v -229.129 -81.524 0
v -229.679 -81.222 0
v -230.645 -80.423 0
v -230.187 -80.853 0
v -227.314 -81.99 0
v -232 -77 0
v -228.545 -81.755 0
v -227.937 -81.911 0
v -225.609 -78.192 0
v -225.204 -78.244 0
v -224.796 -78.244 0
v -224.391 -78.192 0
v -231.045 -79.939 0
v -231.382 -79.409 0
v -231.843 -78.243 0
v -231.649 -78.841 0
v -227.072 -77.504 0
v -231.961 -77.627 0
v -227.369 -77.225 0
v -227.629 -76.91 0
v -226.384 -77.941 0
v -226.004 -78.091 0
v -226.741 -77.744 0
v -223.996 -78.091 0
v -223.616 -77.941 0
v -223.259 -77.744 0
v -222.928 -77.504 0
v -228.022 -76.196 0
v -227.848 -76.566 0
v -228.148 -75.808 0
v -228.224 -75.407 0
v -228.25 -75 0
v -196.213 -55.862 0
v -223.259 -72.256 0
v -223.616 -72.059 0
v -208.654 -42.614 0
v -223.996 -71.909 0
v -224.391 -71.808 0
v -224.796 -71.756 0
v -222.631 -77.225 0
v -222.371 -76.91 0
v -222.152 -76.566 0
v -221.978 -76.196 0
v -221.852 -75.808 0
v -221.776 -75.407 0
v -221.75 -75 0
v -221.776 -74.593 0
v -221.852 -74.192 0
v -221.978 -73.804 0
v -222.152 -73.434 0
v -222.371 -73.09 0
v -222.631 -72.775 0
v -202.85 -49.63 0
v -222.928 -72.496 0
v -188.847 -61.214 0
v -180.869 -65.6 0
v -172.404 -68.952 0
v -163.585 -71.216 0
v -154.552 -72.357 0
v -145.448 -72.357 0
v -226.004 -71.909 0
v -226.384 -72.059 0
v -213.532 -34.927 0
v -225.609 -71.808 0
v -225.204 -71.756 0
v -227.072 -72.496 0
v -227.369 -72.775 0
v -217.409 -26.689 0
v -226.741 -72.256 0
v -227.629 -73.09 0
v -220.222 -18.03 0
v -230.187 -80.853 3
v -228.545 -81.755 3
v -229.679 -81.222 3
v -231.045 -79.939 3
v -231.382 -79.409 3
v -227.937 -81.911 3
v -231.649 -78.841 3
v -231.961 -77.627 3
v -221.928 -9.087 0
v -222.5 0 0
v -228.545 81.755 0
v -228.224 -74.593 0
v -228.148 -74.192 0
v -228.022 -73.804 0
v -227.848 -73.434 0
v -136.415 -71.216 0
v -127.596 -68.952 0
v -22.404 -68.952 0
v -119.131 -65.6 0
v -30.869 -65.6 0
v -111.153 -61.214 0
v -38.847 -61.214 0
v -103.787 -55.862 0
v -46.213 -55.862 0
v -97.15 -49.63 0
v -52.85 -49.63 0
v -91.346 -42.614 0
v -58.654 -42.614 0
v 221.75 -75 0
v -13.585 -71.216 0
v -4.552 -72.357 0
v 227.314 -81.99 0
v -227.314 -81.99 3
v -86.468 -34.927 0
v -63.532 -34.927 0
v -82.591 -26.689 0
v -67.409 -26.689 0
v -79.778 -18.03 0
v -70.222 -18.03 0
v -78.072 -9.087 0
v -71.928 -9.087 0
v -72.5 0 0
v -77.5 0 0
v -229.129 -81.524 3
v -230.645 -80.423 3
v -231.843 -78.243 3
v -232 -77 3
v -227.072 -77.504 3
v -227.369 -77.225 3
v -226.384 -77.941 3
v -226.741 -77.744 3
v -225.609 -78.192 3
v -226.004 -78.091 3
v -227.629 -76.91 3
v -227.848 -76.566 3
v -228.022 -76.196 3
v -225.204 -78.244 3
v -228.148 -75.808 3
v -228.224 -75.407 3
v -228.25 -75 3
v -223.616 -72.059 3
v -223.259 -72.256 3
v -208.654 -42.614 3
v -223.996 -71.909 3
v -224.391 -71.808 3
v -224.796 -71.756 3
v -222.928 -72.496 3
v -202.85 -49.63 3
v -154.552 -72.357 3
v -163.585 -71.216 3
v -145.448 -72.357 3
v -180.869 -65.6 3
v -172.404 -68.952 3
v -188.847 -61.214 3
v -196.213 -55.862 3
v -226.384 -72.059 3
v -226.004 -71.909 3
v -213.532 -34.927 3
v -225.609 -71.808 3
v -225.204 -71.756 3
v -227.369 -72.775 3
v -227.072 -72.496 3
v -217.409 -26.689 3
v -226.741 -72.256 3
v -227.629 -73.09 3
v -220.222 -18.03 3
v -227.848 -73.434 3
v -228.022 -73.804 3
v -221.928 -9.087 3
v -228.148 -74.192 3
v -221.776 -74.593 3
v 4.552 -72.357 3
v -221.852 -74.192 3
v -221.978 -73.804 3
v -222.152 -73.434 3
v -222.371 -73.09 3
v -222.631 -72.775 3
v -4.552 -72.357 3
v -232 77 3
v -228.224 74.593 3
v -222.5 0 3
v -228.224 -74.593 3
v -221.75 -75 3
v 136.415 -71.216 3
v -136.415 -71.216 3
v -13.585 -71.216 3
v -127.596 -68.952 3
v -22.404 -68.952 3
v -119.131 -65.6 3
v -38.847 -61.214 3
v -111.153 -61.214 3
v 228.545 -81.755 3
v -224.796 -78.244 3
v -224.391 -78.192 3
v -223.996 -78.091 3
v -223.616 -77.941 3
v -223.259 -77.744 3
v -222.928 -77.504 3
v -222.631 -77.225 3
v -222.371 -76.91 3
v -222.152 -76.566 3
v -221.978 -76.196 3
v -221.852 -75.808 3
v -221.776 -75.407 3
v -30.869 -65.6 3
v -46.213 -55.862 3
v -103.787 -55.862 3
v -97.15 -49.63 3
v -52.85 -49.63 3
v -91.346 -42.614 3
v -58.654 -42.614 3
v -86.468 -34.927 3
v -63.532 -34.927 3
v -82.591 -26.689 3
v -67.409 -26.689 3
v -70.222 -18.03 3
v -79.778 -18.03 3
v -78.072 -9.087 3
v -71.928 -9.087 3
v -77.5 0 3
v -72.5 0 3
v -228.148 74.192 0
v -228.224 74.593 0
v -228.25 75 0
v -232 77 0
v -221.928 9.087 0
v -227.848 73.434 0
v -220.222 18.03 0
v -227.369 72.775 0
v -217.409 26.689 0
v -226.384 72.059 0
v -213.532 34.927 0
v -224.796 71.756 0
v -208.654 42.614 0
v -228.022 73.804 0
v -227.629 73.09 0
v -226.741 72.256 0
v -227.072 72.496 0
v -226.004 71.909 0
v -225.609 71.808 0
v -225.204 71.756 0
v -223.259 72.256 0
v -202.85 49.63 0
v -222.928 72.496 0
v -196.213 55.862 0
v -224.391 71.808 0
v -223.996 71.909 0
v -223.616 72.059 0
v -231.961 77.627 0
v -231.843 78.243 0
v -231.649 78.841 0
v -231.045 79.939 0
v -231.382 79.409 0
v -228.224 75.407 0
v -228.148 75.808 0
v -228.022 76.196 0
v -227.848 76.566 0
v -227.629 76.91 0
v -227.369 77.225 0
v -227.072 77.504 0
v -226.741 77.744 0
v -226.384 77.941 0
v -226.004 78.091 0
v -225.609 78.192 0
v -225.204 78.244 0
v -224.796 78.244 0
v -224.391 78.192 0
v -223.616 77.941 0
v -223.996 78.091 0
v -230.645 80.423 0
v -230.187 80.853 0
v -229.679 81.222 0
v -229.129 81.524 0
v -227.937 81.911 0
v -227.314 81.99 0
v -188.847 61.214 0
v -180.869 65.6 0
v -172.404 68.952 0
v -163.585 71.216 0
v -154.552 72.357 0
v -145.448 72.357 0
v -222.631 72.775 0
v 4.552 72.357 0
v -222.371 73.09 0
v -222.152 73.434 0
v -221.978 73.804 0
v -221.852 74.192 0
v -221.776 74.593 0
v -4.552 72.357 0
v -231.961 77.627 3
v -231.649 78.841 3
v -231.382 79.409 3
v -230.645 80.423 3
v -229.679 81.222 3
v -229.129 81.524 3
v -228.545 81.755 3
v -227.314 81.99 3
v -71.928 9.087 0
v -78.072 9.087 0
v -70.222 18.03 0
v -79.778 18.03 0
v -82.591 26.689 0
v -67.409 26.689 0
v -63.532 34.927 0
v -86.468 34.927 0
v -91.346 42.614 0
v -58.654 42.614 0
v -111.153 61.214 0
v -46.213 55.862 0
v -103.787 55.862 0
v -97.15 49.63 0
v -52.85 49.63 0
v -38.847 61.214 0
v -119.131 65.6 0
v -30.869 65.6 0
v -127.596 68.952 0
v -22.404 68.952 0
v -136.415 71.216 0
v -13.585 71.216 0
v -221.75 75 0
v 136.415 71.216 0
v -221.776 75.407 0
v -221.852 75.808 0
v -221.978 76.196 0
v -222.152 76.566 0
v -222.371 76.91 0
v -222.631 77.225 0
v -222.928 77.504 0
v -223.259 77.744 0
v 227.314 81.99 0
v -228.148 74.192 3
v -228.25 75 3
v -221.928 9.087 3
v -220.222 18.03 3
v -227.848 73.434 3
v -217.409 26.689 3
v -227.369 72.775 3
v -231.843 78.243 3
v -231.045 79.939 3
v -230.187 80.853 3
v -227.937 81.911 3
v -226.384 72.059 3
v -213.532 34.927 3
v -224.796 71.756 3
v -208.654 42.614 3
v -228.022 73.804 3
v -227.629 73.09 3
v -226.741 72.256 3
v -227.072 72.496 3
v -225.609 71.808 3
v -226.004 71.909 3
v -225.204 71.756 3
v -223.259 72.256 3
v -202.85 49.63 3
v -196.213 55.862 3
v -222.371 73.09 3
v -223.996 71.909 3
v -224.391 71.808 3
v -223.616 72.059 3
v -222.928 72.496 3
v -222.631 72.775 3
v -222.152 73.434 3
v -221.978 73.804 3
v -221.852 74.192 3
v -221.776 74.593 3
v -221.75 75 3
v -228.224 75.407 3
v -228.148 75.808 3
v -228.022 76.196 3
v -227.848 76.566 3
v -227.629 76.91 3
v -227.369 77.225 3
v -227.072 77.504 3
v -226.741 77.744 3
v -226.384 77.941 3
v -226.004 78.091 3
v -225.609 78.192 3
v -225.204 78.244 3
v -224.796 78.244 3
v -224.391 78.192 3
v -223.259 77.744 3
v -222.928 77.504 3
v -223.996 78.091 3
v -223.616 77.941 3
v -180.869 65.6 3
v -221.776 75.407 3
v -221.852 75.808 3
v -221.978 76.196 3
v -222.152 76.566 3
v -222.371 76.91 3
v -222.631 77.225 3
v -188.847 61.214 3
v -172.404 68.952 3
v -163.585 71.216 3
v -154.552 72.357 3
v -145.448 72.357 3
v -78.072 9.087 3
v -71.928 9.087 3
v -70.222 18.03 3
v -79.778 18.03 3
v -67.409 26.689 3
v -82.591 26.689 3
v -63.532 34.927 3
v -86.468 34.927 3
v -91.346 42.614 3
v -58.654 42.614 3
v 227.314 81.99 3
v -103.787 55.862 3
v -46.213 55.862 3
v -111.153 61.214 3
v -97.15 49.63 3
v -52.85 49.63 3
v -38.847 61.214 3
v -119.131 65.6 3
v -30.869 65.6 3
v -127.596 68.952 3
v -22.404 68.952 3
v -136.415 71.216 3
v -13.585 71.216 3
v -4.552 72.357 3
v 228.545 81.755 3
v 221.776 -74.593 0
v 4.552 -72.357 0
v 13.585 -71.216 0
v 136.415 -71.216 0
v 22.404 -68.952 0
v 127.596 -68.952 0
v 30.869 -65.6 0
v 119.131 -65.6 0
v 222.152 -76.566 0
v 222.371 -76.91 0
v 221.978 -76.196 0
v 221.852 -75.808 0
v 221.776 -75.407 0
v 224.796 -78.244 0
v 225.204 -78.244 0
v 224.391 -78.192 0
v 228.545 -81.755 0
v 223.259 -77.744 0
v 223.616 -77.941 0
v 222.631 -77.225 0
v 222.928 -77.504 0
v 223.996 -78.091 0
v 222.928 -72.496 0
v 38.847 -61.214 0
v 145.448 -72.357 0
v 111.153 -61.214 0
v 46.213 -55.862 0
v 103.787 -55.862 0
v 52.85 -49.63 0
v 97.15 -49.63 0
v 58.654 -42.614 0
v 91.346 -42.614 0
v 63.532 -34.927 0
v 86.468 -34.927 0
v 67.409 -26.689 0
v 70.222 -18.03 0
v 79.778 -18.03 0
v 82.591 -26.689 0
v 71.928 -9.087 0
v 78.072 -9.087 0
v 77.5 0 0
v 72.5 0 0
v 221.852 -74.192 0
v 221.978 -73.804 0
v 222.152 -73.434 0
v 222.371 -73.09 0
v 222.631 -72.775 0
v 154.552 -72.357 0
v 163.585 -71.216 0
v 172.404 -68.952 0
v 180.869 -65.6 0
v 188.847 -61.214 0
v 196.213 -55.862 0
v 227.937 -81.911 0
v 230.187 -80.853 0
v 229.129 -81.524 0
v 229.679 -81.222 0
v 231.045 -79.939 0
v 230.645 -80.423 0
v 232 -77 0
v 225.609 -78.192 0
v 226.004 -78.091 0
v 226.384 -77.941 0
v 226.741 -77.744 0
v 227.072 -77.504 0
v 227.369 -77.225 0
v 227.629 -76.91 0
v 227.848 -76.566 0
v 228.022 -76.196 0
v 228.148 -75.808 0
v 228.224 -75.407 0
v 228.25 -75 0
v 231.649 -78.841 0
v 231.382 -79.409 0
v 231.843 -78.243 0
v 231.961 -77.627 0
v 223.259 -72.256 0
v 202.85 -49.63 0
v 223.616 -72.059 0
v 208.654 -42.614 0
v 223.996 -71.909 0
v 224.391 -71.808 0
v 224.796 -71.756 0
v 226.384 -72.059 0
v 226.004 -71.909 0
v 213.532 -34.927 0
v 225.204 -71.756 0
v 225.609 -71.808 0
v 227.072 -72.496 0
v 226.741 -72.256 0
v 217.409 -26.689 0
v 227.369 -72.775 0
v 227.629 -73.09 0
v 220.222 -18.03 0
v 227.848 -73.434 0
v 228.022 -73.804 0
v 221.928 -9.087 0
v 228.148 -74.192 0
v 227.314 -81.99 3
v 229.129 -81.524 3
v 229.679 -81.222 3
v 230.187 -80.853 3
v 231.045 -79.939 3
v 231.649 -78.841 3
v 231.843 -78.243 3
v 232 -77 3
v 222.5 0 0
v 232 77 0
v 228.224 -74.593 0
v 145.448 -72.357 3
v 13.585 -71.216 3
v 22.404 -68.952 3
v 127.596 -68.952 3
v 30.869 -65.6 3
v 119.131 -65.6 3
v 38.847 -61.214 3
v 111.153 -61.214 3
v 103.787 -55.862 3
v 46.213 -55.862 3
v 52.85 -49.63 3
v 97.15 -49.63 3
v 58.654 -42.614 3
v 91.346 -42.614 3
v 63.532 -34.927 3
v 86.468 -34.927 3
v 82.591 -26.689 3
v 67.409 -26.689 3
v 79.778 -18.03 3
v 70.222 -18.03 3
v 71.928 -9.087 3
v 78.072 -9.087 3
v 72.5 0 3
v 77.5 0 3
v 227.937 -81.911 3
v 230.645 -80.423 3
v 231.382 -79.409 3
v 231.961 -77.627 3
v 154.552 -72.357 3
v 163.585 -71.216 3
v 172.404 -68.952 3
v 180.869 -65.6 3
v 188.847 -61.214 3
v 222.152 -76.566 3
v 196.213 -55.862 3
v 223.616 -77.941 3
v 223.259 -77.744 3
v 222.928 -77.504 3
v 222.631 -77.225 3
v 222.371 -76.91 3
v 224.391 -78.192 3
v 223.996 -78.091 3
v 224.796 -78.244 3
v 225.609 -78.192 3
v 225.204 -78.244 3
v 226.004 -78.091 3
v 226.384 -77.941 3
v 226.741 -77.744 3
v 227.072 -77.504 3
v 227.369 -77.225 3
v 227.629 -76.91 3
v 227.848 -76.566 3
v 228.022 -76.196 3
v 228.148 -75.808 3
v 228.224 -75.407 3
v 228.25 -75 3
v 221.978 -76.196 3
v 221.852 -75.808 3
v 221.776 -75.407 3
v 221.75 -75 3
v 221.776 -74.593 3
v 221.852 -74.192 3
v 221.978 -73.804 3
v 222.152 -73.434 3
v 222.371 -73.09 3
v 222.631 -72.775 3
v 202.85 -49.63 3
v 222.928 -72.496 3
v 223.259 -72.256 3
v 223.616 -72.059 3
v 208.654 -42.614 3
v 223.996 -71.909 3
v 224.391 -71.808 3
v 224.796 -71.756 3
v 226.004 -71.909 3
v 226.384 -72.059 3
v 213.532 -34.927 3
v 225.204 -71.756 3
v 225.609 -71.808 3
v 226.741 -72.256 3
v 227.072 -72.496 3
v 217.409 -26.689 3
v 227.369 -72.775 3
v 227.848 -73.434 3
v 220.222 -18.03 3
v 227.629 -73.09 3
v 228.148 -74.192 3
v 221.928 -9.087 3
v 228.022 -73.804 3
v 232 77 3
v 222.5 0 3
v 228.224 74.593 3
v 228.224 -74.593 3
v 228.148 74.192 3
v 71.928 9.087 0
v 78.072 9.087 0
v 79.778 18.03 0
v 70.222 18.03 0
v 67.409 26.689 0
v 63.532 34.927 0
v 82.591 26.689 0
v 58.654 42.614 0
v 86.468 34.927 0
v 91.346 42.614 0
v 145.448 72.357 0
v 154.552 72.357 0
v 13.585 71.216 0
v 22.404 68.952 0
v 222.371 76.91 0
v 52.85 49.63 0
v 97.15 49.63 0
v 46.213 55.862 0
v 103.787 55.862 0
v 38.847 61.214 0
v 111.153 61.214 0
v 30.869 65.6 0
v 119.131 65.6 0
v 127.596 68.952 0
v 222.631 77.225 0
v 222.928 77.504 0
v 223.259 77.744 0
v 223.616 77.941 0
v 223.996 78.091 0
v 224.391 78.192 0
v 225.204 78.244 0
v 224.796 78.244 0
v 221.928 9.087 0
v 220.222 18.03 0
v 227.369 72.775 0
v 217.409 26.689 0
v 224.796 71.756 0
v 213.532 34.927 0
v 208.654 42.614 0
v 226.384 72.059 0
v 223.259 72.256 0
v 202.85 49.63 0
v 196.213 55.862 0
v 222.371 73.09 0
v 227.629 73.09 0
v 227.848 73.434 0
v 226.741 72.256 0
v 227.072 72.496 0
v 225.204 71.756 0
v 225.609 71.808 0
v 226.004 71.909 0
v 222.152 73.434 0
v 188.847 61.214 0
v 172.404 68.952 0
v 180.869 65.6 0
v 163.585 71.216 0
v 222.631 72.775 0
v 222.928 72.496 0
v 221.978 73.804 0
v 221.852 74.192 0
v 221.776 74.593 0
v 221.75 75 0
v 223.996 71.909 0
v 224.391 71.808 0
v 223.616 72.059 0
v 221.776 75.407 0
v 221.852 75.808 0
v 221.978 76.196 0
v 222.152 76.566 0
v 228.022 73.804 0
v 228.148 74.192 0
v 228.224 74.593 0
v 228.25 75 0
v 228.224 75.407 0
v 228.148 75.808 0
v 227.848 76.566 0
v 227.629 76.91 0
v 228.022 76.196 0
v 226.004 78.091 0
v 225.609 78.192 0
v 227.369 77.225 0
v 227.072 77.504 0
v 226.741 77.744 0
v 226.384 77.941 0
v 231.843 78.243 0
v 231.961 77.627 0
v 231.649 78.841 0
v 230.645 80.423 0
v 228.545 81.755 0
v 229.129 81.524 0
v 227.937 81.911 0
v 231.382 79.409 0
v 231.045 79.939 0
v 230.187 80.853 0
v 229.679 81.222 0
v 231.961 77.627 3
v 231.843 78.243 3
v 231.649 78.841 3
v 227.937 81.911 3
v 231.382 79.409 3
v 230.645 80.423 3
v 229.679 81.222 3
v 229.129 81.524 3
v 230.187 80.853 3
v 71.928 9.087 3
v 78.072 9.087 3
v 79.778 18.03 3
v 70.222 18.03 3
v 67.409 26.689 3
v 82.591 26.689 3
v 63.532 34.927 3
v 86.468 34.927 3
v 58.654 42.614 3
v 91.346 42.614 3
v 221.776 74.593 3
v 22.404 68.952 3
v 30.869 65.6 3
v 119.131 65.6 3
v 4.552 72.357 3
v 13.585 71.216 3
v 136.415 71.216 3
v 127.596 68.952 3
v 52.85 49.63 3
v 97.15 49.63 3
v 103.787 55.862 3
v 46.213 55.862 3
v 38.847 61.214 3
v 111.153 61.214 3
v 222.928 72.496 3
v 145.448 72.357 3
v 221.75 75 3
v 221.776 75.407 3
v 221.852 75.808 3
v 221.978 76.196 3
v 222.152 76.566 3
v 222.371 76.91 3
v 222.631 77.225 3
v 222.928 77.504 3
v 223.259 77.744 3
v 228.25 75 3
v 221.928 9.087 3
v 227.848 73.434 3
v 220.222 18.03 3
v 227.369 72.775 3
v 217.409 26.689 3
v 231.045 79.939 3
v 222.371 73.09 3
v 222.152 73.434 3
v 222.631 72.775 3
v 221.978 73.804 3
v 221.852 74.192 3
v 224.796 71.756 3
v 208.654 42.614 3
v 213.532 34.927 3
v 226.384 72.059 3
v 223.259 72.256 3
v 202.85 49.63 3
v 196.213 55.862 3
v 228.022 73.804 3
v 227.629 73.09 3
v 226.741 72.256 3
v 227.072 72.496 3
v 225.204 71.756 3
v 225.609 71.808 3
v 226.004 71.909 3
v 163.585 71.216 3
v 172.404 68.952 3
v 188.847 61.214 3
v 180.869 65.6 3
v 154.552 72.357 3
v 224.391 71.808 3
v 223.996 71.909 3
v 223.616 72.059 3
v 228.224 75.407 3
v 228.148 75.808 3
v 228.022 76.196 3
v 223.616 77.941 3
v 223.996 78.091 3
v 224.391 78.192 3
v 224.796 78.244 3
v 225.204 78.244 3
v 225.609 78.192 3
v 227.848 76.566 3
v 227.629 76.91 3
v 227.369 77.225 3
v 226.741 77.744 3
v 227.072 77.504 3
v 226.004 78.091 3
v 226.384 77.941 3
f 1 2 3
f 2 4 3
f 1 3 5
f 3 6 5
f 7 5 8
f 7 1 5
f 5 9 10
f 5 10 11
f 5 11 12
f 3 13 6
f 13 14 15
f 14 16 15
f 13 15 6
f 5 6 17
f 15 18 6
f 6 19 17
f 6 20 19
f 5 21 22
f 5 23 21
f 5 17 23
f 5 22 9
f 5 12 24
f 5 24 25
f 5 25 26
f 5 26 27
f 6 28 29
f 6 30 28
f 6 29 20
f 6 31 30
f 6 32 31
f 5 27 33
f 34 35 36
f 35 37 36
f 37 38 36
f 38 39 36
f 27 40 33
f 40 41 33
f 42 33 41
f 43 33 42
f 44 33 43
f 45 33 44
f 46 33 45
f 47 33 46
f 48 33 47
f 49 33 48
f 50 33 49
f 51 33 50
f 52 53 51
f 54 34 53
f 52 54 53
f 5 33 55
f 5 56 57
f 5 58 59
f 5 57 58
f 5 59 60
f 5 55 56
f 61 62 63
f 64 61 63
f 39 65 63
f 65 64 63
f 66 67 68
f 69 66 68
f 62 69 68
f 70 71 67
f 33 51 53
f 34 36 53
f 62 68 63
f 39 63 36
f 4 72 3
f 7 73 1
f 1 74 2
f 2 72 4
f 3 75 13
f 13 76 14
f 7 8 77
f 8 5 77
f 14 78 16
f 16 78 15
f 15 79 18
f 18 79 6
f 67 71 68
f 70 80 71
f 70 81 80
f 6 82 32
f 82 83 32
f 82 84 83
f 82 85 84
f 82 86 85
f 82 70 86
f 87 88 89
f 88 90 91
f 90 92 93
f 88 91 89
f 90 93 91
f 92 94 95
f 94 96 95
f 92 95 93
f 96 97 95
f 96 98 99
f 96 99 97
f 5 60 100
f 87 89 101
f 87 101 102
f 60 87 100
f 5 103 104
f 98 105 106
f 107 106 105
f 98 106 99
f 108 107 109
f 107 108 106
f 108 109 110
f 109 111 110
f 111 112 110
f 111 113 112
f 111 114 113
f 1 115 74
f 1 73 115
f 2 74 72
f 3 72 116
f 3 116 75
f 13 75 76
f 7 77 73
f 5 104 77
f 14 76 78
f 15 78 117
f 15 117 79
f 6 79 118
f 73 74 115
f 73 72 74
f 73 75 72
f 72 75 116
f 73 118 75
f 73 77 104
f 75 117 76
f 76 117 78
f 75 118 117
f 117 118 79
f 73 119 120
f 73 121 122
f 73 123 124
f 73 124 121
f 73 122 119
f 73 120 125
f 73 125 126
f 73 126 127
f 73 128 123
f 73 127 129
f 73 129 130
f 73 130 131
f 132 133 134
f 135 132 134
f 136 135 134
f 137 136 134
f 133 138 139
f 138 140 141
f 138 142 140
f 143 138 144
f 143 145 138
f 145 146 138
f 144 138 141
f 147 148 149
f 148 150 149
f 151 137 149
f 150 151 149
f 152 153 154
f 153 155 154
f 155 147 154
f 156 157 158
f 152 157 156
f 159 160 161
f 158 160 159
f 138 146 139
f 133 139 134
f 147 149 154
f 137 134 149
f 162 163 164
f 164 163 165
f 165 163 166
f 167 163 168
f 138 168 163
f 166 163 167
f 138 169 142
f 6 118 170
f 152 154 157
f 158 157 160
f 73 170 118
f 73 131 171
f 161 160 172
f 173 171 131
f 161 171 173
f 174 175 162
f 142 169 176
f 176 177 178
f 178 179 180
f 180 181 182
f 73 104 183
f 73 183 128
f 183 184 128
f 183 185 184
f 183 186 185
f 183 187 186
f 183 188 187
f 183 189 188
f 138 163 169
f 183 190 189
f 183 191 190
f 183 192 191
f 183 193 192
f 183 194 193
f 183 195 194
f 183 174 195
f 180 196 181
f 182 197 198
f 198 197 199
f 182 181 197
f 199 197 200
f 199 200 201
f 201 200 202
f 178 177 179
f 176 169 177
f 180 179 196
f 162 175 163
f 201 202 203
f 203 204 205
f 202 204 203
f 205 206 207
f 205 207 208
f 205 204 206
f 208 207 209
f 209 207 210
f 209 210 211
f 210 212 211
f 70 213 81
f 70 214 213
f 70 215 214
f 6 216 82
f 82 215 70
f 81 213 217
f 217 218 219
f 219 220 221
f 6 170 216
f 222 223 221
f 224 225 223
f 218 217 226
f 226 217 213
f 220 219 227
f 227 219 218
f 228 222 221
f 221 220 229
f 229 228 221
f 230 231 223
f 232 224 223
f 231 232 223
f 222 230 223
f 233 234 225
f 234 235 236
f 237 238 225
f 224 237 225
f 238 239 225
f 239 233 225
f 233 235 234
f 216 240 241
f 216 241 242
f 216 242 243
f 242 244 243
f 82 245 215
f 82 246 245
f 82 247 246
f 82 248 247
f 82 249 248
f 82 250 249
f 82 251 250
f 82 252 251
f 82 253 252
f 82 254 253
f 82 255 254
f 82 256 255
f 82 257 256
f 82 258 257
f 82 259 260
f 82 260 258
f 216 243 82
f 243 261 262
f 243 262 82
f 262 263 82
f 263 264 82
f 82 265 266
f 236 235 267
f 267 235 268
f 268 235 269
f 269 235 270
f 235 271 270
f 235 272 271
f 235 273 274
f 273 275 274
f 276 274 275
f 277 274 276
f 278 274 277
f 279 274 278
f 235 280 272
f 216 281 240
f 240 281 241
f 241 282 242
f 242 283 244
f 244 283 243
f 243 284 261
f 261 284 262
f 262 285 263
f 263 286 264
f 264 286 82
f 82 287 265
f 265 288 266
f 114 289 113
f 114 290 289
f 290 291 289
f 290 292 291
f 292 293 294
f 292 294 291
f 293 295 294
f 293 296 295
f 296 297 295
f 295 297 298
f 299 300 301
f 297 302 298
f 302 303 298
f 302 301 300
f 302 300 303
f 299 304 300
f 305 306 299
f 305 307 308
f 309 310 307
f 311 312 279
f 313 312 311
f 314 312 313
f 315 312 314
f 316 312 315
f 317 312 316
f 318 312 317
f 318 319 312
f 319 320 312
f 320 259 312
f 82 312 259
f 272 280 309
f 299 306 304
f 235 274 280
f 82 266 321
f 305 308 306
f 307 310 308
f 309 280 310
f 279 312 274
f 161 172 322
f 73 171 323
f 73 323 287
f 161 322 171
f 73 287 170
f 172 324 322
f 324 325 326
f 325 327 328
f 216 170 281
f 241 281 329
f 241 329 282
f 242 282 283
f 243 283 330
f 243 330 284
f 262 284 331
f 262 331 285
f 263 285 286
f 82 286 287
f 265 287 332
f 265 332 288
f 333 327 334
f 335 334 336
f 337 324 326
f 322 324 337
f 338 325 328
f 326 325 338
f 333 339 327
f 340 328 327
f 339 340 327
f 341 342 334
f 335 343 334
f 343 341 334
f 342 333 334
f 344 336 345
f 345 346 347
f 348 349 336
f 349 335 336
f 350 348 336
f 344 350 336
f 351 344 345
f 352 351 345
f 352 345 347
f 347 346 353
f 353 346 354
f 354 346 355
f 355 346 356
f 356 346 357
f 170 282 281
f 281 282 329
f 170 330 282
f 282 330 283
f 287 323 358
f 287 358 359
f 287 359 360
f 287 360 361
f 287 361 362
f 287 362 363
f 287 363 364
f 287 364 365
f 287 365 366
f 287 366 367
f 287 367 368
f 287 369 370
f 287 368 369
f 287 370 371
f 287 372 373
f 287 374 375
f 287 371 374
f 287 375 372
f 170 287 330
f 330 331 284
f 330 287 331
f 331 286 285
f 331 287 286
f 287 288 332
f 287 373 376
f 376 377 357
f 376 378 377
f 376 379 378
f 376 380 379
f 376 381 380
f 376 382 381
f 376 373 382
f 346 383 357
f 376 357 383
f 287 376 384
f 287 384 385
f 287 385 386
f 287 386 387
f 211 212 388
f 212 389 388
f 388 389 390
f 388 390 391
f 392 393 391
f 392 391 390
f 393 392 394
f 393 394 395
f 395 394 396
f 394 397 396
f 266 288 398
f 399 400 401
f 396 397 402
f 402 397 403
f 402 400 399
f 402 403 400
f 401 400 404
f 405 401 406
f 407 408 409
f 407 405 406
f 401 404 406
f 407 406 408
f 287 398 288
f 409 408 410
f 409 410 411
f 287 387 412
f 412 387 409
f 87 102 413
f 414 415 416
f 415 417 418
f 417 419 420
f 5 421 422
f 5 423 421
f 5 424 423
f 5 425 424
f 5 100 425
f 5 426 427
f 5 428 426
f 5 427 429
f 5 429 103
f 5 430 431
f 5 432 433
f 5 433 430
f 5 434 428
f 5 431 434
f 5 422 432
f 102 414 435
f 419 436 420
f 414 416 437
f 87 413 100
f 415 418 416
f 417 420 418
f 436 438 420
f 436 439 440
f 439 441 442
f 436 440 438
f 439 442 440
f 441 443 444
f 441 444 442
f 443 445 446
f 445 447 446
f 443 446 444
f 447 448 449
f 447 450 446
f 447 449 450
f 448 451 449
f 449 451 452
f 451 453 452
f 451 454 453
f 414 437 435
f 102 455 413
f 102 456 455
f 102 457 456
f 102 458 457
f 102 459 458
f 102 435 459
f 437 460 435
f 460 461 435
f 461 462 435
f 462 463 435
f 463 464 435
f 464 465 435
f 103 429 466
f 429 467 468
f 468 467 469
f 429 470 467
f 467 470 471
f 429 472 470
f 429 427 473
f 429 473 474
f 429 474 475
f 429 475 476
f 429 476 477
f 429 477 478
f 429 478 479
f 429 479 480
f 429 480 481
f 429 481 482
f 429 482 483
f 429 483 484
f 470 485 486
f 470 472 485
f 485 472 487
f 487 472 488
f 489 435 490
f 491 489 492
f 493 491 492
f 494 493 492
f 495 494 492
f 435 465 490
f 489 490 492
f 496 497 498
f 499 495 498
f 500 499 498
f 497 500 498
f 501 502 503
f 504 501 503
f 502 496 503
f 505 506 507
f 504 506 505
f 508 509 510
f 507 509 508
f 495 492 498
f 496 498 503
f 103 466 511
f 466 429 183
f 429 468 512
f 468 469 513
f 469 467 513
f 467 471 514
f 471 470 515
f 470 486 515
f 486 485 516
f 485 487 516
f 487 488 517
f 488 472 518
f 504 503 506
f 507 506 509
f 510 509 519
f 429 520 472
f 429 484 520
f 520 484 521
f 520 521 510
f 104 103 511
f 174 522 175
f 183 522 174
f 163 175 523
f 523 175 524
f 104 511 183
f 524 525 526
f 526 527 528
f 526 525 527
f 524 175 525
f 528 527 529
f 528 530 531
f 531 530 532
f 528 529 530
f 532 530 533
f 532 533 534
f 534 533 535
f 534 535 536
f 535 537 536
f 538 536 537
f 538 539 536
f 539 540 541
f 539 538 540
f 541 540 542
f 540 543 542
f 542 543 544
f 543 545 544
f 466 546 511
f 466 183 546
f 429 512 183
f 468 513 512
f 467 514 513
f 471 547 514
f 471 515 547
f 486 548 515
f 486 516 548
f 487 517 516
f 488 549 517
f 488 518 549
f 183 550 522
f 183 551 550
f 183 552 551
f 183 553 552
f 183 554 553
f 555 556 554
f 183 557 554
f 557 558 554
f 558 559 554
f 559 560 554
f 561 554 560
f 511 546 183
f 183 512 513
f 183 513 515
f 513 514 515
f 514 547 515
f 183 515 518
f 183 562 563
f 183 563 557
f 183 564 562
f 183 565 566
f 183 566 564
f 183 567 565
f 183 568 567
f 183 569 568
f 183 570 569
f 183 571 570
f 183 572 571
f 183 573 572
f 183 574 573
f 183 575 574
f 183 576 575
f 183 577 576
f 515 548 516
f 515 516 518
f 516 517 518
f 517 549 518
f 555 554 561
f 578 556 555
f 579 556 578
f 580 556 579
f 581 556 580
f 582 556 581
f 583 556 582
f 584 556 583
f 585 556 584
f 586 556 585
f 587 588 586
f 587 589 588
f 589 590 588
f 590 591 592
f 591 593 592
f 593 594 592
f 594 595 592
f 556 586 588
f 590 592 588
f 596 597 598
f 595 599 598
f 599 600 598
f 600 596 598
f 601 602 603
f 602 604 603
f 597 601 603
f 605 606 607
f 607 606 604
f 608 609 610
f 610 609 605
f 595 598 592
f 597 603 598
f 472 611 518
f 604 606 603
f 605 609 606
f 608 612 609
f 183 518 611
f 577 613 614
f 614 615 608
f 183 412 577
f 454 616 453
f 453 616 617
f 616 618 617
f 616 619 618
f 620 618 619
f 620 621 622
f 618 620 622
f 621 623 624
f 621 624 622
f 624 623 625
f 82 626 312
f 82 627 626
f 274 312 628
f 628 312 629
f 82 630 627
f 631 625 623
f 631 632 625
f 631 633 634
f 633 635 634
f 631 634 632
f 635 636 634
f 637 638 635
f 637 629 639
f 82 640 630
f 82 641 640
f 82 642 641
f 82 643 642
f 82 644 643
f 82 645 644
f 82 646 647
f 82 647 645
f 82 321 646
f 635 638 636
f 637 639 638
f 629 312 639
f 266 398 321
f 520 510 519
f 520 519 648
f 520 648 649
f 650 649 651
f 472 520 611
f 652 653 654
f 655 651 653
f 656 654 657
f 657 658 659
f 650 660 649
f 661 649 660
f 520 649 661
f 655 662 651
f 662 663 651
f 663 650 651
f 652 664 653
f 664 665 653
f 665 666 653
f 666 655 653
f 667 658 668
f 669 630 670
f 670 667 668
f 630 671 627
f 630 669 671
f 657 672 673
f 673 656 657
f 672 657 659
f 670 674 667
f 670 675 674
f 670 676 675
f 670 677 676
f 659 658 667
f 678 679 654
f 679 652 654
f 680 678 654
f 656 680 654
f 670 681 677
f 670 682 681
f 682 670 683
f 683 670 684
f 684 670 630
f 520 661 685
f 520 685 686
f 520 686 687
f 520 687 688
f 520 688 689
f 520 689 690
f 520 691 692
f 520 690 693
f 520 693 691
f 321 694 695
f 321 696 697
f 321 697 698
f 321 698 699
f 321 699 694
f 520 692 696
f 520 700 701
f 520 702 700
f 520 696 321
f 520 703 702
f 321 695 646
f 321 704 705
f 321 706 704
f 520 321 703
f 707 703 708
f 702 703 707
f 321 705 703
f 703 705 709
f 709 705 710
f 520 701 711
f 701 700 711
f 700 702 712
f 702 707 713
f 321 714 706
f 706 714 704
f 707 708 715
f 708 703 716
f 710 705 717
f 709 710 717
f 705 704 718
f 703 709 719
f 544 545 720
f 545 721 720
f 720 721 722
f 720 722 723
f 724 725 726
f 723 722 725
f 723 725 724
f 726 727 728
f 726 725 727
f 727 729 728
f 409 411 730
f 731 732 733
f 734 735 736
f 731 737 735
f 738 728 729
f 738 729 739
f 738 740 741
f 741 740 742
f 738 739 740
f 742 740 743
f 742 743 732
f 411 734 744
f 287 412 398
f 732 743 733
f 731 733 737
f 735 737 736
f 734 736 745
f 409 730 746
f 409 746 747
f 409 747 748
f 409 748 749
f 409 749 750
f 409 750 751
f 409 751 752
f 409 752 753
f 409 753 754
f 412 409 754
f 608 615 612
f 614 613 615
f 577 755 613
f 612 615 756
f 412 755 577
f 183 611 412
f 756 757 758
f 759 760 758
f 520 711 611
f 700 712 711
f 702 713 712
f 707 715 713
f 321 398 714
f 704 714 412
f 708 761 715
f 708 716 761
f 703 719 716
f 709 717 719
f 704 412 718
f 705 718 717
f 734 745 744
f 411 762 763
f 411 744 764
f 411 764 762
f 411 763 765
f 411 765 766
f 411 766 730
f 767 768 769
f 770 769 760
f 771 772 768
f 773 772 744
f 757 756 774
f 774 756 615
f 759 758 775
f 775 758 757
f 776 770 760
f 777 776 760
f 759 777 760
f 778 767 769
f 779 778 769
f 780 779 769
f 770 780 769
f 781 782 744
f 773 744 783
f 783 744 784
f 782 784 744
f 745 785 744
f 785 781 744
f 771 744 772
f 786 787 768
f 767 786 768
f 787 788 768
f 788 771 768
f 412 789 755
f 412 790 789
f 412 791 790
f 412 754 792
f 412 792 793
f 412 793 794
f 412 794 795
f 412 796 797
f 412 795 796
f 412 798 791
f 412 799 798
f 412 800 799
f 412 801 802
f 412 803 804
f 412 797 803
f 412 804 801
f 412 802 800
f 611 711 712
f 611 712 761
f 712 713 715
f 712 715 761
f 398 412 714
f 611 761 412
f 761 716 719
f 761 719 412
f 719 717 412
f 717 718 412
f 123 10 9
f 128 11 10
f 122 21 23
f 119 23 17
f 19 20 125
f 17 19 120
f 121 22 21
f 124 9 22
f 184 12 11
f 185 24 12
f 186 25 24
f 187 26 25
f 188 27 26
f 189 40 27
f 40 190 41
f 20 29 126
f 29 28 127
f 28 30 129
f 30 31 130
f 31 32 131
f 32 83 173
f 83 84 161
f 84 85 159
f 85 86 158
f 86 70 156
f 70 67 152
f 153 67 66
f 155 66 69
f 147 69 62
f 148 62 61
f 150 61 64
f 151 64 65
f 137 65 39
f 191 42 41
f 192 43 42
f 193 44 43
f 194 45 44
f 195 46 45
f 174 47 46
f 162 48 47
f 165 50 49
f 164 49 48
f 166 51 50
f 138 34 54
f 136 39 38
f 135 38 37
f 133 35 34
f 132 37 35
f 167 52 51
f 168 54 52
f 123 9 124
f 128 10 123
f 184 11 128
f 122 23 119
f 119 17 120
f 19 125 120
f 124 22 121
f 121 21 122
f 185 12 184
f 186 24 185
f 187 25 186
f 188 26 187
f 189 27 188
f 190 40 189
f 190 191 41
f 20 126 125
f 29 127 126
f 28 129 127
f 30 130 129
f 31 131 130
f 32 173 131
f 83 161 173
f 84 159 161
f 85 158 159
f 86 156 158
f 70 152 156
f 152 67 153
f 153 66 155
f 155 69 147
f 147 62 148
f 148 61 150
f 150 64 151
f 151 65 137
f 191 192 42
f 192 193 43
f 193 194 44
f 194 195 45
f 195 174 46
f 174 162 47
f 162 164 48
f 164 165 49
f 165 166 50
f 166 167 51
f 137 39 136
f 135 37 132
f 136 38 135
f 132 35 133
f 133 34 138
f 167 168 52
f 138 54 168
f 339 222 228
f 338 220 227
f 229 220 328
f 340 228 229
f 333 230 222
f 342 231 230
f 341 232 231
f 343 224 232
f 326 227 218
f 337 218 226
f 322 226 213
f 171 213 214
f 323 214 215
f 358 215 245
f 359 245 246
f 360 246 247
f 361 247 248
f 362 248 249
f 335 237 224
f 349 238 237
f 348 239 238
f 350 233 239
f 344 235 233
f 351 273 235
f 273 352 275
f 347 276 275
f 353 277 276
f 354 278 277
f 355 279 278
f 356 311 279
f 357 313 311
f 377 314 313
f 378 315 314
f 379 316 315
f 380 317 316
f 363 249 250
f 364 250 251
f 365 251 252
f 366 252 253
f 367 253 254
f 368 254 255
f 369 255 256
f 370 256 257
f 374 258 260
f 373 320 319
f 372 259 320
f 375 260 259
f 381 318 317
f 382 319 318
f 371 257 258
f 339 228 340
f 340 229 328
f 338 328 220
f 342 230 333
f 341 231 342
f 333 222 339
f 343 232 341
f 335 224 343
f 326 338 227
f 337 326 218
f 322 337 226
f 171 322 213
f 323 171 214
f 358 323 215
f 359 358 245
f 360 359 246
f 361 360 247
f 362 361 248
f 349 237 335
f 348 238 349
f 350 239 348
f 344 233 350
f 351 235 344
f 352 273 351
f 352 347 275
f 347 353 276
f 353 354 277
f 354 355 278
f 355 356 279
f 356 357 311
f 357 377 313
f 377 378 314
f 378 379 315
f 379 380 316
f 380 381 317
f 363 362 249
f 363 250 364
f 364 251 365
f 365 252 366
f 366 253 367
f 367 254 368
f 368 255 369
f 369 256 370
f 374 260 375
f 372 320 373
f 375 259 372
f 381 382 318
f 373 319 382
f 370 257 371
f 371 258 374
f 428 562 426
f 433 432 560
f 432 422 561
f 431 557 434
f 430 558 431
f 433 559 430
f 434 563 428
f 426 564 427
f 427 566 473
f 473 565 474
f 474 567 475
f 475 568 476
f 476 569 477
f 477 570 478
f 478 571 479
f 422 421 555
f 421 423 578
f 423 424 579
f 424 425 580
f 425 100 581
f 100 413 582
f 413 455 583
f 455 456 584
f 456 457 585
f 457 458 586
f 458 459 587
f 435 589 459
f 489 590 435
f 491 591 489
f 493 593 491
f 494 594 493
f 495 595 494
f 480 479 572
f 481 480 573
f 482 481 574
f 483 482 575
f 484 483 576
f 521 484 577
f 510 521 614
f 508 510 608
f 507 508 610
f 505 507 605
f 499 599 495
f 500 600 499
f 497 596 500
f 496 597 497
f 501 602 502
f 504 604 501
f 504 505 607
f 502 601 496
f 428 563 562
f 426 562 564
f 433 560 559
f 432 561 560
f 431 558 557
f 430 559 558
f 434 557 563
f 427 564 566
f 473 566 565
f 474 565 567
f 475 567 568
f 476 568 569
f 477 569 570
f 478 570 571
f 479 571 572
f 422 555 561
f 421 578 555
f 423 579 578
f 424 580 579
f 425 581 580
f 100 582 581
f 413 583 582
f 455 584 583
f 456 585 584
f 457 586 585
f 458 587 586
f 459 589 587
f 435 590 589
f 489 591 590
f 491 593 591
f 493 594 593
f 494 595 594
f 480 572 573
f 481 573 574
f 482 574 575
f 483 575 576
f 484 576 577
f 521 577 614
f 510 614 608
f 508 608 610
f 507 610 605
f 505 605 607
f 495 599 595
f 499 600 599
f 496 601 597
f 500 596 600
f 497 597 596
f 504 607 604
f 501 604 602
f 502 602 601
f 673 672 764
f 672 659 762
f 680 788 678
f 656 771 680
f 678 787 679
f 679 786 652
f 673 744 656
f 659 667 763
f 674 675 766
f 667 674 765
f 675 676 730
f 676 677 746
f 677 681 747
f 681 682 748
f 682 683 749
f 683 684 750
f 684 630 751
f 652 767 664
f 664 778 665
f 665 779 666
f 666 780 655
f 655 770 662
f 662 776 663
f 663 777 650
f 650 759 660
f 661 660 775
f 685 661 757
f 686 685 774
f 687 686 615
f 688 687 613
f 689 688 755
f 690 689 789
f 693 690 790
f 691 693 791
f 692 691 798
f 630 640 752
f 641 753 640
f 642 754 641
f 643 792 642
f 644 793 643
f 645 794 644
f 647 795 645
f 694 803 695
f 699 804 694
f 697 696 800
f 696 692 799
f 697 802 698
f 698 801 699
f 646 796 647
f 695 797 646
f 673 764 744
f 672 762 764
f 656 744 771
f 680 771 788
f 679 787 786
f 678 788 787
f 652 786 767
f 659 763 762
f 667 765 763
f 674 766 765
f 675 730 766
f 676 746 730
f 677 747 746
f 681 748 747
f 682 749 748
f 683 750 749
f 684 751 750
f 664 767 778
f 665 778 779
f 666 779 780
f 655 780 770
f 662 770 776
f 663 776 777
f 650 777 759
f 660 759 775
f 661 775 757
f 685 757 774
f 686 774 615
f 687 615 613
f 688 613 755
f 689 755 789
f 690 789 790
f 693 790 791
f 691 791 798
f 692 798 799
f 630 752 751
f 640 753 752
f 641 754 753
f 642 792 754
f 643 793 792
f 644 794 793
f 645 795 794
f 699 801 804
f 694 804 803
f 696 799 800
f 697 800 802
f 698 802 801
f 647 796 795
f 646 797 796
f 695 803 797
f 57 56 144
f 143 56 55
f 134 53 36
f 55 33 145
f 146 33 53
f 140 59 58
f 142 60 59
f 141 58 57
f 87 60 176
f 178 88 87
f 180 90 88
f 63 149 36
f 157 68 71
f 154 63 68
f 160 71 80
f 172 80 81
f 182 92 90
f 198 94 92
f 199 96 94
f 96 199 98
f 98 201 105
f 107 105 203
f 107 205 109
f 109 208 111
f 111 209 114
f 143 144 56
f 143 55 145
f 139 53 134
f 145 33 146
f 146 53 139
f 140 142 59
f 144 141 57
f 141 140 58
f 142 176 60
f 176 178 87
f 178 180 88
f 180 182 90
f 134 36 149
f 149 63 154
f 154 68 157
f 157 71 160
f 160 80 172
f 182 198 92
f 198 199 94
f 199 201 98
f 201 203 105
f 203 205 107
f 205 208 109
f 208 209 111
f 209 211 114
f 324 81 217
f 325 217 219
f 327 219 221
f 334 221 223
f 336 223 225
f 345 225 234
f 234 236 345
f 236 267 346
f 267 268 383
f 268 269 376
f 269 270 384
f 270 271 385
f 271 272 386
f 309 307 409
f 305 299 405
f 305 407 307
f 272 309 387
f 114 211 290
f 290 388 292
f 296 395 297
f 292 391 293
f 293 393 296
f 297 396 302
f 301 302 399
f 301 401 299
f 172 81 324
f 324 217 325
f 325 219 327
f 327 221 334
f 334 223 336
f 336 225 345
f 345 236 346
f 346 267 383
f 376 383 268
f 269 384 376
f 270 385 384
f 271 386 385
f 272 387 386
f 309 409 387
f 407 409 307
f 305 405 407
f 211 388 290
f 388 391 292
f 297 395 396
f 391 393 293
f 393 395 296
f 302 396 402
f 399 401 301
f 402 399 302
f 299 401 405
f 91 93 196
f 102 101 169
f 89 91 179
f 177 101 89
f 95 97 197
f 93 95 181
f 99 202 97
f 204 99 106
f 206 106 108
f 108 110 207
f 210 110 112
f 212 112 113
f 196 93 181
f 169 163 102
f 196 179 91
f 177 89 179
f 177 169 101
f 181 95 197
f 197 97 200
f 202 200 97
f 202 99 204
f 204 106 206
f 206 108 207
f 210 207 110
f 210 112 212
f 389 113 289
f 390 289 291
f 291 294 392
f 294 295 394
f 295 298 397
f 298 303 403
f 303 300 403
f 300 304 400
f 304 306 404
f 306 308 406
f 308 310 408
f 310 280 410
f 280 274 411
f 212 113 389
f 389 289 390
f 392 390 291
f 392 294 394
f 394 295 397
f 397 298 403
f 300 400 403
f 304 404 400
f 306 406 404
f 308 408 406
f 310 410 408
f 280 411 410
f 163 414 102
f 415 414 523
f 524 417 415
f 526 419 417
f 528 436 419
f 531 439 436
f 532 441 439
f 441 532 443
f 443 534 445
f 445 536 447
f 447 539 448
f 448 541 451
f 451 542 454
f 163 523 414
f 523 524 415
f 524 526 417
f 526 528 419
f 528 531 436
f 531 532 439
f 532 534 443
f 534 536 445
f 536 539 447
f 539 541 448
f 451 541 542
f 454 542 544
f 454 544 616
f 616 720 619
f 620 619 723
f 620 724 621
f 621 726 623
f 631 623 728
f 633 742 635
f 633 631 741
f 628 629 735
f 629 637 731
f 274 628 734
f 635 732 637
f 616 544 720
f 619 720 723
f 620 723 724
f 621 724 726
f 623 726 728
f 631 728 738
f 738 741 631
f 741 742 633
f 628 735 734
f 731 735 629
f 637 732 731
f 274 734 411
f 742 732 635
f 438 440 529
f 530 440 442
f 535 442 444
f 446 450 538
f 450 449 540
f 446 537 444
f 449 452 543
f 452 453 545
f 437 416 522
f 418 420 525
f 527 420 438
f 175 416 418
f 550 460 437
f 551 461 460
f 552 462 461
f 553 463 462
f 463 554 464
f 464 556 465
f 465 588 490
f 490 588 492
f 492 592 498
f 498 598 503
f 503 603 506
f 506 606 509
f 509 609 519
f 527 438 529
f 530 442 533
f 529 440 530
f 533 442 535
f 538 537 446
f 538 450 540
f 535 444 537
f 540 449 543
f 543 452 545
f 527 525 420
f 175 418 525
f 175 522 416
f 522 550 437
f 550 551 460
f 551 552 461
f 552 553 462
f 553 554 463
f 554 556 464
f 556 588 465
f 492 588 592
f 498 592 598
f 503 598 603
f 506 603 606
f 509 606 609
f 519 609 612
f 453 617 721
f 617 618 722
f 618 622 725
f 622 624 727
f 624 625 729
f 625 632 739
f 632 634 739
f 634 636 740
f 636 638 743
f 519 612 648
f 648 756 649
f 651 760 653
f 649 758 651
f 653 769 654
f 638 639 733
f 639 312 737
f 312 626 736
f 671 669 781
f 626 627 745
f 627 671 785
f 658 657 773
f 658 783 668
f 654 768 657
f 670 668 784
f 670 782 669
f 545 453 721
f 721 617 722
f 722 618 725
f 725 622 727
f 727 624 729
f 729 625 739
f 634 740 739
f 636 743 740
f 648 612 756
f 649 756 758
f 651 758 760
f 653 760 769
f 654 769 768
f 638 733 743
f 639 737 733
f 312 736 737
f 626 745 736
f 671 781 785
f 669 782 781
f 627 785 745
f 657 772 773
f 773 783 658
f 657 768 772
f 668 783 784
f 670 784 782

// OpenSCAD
$fn = 50;

difference() {
	union() {
		hull() {
			translate(v = [-227.0, 77.0, 0]) {
				cylinder(h = 3, r = 5);
			}
			translate(v = [227.0, 77.0, 0]) {
				cylinder(h = 3, r = 5);
			}
			translate(v = [-227.0, -77.0, 0]) {
				cylinder(h = 3, r = 5);
			}
			translate(v = [227.0, -77.0, 0]) {
				cylinder(h = 3, r = 5);
			}
		}
	}
	union() {
		translate(v = [-225.0, -75.0, -100.0]) {
			cylinder(h = 200, r = 3.25);
		}
		translate(v = [-225.0, 75.0, -100.0]) {
			cylinder(h = 200, r = 3.25);
		}
		translate(v = [225.0, -75.0, -100.0]) {
			cylinder(h = 200, r = 3.25);
		}
		translate(v = [225.0, 75.0, -100.0]) {
			cylinder(h = 200, r = 3.25);
		}
		translate(v = [-225.0, -75.0, -100.0]) {
			cylinder(h = 200, r = 1.8);
		}
		translate(v = [-225.0, 75.0, -100.0]) {
			cylinder(h = 200, r = 1.8);
		}
		translate(v = [225.0, -75.0, -100.0]) {
			cylinder(h = 200, r = 1.8);
		}
		translate(v = [225.0, 75.0, -100.0]) {
			cylinder(h = 200, r = 1.8);
		}
		translate(v = [-150.0, 0, 0.0]) {
			cylinder(h = 3, r = 72.5);
		}
		cylinder(h = 3, r = 72.5);
		translate(v = [150.0, 0, 0.0]) {
			cylinder(h = 3, r = 72.5);
		}
	}
}
